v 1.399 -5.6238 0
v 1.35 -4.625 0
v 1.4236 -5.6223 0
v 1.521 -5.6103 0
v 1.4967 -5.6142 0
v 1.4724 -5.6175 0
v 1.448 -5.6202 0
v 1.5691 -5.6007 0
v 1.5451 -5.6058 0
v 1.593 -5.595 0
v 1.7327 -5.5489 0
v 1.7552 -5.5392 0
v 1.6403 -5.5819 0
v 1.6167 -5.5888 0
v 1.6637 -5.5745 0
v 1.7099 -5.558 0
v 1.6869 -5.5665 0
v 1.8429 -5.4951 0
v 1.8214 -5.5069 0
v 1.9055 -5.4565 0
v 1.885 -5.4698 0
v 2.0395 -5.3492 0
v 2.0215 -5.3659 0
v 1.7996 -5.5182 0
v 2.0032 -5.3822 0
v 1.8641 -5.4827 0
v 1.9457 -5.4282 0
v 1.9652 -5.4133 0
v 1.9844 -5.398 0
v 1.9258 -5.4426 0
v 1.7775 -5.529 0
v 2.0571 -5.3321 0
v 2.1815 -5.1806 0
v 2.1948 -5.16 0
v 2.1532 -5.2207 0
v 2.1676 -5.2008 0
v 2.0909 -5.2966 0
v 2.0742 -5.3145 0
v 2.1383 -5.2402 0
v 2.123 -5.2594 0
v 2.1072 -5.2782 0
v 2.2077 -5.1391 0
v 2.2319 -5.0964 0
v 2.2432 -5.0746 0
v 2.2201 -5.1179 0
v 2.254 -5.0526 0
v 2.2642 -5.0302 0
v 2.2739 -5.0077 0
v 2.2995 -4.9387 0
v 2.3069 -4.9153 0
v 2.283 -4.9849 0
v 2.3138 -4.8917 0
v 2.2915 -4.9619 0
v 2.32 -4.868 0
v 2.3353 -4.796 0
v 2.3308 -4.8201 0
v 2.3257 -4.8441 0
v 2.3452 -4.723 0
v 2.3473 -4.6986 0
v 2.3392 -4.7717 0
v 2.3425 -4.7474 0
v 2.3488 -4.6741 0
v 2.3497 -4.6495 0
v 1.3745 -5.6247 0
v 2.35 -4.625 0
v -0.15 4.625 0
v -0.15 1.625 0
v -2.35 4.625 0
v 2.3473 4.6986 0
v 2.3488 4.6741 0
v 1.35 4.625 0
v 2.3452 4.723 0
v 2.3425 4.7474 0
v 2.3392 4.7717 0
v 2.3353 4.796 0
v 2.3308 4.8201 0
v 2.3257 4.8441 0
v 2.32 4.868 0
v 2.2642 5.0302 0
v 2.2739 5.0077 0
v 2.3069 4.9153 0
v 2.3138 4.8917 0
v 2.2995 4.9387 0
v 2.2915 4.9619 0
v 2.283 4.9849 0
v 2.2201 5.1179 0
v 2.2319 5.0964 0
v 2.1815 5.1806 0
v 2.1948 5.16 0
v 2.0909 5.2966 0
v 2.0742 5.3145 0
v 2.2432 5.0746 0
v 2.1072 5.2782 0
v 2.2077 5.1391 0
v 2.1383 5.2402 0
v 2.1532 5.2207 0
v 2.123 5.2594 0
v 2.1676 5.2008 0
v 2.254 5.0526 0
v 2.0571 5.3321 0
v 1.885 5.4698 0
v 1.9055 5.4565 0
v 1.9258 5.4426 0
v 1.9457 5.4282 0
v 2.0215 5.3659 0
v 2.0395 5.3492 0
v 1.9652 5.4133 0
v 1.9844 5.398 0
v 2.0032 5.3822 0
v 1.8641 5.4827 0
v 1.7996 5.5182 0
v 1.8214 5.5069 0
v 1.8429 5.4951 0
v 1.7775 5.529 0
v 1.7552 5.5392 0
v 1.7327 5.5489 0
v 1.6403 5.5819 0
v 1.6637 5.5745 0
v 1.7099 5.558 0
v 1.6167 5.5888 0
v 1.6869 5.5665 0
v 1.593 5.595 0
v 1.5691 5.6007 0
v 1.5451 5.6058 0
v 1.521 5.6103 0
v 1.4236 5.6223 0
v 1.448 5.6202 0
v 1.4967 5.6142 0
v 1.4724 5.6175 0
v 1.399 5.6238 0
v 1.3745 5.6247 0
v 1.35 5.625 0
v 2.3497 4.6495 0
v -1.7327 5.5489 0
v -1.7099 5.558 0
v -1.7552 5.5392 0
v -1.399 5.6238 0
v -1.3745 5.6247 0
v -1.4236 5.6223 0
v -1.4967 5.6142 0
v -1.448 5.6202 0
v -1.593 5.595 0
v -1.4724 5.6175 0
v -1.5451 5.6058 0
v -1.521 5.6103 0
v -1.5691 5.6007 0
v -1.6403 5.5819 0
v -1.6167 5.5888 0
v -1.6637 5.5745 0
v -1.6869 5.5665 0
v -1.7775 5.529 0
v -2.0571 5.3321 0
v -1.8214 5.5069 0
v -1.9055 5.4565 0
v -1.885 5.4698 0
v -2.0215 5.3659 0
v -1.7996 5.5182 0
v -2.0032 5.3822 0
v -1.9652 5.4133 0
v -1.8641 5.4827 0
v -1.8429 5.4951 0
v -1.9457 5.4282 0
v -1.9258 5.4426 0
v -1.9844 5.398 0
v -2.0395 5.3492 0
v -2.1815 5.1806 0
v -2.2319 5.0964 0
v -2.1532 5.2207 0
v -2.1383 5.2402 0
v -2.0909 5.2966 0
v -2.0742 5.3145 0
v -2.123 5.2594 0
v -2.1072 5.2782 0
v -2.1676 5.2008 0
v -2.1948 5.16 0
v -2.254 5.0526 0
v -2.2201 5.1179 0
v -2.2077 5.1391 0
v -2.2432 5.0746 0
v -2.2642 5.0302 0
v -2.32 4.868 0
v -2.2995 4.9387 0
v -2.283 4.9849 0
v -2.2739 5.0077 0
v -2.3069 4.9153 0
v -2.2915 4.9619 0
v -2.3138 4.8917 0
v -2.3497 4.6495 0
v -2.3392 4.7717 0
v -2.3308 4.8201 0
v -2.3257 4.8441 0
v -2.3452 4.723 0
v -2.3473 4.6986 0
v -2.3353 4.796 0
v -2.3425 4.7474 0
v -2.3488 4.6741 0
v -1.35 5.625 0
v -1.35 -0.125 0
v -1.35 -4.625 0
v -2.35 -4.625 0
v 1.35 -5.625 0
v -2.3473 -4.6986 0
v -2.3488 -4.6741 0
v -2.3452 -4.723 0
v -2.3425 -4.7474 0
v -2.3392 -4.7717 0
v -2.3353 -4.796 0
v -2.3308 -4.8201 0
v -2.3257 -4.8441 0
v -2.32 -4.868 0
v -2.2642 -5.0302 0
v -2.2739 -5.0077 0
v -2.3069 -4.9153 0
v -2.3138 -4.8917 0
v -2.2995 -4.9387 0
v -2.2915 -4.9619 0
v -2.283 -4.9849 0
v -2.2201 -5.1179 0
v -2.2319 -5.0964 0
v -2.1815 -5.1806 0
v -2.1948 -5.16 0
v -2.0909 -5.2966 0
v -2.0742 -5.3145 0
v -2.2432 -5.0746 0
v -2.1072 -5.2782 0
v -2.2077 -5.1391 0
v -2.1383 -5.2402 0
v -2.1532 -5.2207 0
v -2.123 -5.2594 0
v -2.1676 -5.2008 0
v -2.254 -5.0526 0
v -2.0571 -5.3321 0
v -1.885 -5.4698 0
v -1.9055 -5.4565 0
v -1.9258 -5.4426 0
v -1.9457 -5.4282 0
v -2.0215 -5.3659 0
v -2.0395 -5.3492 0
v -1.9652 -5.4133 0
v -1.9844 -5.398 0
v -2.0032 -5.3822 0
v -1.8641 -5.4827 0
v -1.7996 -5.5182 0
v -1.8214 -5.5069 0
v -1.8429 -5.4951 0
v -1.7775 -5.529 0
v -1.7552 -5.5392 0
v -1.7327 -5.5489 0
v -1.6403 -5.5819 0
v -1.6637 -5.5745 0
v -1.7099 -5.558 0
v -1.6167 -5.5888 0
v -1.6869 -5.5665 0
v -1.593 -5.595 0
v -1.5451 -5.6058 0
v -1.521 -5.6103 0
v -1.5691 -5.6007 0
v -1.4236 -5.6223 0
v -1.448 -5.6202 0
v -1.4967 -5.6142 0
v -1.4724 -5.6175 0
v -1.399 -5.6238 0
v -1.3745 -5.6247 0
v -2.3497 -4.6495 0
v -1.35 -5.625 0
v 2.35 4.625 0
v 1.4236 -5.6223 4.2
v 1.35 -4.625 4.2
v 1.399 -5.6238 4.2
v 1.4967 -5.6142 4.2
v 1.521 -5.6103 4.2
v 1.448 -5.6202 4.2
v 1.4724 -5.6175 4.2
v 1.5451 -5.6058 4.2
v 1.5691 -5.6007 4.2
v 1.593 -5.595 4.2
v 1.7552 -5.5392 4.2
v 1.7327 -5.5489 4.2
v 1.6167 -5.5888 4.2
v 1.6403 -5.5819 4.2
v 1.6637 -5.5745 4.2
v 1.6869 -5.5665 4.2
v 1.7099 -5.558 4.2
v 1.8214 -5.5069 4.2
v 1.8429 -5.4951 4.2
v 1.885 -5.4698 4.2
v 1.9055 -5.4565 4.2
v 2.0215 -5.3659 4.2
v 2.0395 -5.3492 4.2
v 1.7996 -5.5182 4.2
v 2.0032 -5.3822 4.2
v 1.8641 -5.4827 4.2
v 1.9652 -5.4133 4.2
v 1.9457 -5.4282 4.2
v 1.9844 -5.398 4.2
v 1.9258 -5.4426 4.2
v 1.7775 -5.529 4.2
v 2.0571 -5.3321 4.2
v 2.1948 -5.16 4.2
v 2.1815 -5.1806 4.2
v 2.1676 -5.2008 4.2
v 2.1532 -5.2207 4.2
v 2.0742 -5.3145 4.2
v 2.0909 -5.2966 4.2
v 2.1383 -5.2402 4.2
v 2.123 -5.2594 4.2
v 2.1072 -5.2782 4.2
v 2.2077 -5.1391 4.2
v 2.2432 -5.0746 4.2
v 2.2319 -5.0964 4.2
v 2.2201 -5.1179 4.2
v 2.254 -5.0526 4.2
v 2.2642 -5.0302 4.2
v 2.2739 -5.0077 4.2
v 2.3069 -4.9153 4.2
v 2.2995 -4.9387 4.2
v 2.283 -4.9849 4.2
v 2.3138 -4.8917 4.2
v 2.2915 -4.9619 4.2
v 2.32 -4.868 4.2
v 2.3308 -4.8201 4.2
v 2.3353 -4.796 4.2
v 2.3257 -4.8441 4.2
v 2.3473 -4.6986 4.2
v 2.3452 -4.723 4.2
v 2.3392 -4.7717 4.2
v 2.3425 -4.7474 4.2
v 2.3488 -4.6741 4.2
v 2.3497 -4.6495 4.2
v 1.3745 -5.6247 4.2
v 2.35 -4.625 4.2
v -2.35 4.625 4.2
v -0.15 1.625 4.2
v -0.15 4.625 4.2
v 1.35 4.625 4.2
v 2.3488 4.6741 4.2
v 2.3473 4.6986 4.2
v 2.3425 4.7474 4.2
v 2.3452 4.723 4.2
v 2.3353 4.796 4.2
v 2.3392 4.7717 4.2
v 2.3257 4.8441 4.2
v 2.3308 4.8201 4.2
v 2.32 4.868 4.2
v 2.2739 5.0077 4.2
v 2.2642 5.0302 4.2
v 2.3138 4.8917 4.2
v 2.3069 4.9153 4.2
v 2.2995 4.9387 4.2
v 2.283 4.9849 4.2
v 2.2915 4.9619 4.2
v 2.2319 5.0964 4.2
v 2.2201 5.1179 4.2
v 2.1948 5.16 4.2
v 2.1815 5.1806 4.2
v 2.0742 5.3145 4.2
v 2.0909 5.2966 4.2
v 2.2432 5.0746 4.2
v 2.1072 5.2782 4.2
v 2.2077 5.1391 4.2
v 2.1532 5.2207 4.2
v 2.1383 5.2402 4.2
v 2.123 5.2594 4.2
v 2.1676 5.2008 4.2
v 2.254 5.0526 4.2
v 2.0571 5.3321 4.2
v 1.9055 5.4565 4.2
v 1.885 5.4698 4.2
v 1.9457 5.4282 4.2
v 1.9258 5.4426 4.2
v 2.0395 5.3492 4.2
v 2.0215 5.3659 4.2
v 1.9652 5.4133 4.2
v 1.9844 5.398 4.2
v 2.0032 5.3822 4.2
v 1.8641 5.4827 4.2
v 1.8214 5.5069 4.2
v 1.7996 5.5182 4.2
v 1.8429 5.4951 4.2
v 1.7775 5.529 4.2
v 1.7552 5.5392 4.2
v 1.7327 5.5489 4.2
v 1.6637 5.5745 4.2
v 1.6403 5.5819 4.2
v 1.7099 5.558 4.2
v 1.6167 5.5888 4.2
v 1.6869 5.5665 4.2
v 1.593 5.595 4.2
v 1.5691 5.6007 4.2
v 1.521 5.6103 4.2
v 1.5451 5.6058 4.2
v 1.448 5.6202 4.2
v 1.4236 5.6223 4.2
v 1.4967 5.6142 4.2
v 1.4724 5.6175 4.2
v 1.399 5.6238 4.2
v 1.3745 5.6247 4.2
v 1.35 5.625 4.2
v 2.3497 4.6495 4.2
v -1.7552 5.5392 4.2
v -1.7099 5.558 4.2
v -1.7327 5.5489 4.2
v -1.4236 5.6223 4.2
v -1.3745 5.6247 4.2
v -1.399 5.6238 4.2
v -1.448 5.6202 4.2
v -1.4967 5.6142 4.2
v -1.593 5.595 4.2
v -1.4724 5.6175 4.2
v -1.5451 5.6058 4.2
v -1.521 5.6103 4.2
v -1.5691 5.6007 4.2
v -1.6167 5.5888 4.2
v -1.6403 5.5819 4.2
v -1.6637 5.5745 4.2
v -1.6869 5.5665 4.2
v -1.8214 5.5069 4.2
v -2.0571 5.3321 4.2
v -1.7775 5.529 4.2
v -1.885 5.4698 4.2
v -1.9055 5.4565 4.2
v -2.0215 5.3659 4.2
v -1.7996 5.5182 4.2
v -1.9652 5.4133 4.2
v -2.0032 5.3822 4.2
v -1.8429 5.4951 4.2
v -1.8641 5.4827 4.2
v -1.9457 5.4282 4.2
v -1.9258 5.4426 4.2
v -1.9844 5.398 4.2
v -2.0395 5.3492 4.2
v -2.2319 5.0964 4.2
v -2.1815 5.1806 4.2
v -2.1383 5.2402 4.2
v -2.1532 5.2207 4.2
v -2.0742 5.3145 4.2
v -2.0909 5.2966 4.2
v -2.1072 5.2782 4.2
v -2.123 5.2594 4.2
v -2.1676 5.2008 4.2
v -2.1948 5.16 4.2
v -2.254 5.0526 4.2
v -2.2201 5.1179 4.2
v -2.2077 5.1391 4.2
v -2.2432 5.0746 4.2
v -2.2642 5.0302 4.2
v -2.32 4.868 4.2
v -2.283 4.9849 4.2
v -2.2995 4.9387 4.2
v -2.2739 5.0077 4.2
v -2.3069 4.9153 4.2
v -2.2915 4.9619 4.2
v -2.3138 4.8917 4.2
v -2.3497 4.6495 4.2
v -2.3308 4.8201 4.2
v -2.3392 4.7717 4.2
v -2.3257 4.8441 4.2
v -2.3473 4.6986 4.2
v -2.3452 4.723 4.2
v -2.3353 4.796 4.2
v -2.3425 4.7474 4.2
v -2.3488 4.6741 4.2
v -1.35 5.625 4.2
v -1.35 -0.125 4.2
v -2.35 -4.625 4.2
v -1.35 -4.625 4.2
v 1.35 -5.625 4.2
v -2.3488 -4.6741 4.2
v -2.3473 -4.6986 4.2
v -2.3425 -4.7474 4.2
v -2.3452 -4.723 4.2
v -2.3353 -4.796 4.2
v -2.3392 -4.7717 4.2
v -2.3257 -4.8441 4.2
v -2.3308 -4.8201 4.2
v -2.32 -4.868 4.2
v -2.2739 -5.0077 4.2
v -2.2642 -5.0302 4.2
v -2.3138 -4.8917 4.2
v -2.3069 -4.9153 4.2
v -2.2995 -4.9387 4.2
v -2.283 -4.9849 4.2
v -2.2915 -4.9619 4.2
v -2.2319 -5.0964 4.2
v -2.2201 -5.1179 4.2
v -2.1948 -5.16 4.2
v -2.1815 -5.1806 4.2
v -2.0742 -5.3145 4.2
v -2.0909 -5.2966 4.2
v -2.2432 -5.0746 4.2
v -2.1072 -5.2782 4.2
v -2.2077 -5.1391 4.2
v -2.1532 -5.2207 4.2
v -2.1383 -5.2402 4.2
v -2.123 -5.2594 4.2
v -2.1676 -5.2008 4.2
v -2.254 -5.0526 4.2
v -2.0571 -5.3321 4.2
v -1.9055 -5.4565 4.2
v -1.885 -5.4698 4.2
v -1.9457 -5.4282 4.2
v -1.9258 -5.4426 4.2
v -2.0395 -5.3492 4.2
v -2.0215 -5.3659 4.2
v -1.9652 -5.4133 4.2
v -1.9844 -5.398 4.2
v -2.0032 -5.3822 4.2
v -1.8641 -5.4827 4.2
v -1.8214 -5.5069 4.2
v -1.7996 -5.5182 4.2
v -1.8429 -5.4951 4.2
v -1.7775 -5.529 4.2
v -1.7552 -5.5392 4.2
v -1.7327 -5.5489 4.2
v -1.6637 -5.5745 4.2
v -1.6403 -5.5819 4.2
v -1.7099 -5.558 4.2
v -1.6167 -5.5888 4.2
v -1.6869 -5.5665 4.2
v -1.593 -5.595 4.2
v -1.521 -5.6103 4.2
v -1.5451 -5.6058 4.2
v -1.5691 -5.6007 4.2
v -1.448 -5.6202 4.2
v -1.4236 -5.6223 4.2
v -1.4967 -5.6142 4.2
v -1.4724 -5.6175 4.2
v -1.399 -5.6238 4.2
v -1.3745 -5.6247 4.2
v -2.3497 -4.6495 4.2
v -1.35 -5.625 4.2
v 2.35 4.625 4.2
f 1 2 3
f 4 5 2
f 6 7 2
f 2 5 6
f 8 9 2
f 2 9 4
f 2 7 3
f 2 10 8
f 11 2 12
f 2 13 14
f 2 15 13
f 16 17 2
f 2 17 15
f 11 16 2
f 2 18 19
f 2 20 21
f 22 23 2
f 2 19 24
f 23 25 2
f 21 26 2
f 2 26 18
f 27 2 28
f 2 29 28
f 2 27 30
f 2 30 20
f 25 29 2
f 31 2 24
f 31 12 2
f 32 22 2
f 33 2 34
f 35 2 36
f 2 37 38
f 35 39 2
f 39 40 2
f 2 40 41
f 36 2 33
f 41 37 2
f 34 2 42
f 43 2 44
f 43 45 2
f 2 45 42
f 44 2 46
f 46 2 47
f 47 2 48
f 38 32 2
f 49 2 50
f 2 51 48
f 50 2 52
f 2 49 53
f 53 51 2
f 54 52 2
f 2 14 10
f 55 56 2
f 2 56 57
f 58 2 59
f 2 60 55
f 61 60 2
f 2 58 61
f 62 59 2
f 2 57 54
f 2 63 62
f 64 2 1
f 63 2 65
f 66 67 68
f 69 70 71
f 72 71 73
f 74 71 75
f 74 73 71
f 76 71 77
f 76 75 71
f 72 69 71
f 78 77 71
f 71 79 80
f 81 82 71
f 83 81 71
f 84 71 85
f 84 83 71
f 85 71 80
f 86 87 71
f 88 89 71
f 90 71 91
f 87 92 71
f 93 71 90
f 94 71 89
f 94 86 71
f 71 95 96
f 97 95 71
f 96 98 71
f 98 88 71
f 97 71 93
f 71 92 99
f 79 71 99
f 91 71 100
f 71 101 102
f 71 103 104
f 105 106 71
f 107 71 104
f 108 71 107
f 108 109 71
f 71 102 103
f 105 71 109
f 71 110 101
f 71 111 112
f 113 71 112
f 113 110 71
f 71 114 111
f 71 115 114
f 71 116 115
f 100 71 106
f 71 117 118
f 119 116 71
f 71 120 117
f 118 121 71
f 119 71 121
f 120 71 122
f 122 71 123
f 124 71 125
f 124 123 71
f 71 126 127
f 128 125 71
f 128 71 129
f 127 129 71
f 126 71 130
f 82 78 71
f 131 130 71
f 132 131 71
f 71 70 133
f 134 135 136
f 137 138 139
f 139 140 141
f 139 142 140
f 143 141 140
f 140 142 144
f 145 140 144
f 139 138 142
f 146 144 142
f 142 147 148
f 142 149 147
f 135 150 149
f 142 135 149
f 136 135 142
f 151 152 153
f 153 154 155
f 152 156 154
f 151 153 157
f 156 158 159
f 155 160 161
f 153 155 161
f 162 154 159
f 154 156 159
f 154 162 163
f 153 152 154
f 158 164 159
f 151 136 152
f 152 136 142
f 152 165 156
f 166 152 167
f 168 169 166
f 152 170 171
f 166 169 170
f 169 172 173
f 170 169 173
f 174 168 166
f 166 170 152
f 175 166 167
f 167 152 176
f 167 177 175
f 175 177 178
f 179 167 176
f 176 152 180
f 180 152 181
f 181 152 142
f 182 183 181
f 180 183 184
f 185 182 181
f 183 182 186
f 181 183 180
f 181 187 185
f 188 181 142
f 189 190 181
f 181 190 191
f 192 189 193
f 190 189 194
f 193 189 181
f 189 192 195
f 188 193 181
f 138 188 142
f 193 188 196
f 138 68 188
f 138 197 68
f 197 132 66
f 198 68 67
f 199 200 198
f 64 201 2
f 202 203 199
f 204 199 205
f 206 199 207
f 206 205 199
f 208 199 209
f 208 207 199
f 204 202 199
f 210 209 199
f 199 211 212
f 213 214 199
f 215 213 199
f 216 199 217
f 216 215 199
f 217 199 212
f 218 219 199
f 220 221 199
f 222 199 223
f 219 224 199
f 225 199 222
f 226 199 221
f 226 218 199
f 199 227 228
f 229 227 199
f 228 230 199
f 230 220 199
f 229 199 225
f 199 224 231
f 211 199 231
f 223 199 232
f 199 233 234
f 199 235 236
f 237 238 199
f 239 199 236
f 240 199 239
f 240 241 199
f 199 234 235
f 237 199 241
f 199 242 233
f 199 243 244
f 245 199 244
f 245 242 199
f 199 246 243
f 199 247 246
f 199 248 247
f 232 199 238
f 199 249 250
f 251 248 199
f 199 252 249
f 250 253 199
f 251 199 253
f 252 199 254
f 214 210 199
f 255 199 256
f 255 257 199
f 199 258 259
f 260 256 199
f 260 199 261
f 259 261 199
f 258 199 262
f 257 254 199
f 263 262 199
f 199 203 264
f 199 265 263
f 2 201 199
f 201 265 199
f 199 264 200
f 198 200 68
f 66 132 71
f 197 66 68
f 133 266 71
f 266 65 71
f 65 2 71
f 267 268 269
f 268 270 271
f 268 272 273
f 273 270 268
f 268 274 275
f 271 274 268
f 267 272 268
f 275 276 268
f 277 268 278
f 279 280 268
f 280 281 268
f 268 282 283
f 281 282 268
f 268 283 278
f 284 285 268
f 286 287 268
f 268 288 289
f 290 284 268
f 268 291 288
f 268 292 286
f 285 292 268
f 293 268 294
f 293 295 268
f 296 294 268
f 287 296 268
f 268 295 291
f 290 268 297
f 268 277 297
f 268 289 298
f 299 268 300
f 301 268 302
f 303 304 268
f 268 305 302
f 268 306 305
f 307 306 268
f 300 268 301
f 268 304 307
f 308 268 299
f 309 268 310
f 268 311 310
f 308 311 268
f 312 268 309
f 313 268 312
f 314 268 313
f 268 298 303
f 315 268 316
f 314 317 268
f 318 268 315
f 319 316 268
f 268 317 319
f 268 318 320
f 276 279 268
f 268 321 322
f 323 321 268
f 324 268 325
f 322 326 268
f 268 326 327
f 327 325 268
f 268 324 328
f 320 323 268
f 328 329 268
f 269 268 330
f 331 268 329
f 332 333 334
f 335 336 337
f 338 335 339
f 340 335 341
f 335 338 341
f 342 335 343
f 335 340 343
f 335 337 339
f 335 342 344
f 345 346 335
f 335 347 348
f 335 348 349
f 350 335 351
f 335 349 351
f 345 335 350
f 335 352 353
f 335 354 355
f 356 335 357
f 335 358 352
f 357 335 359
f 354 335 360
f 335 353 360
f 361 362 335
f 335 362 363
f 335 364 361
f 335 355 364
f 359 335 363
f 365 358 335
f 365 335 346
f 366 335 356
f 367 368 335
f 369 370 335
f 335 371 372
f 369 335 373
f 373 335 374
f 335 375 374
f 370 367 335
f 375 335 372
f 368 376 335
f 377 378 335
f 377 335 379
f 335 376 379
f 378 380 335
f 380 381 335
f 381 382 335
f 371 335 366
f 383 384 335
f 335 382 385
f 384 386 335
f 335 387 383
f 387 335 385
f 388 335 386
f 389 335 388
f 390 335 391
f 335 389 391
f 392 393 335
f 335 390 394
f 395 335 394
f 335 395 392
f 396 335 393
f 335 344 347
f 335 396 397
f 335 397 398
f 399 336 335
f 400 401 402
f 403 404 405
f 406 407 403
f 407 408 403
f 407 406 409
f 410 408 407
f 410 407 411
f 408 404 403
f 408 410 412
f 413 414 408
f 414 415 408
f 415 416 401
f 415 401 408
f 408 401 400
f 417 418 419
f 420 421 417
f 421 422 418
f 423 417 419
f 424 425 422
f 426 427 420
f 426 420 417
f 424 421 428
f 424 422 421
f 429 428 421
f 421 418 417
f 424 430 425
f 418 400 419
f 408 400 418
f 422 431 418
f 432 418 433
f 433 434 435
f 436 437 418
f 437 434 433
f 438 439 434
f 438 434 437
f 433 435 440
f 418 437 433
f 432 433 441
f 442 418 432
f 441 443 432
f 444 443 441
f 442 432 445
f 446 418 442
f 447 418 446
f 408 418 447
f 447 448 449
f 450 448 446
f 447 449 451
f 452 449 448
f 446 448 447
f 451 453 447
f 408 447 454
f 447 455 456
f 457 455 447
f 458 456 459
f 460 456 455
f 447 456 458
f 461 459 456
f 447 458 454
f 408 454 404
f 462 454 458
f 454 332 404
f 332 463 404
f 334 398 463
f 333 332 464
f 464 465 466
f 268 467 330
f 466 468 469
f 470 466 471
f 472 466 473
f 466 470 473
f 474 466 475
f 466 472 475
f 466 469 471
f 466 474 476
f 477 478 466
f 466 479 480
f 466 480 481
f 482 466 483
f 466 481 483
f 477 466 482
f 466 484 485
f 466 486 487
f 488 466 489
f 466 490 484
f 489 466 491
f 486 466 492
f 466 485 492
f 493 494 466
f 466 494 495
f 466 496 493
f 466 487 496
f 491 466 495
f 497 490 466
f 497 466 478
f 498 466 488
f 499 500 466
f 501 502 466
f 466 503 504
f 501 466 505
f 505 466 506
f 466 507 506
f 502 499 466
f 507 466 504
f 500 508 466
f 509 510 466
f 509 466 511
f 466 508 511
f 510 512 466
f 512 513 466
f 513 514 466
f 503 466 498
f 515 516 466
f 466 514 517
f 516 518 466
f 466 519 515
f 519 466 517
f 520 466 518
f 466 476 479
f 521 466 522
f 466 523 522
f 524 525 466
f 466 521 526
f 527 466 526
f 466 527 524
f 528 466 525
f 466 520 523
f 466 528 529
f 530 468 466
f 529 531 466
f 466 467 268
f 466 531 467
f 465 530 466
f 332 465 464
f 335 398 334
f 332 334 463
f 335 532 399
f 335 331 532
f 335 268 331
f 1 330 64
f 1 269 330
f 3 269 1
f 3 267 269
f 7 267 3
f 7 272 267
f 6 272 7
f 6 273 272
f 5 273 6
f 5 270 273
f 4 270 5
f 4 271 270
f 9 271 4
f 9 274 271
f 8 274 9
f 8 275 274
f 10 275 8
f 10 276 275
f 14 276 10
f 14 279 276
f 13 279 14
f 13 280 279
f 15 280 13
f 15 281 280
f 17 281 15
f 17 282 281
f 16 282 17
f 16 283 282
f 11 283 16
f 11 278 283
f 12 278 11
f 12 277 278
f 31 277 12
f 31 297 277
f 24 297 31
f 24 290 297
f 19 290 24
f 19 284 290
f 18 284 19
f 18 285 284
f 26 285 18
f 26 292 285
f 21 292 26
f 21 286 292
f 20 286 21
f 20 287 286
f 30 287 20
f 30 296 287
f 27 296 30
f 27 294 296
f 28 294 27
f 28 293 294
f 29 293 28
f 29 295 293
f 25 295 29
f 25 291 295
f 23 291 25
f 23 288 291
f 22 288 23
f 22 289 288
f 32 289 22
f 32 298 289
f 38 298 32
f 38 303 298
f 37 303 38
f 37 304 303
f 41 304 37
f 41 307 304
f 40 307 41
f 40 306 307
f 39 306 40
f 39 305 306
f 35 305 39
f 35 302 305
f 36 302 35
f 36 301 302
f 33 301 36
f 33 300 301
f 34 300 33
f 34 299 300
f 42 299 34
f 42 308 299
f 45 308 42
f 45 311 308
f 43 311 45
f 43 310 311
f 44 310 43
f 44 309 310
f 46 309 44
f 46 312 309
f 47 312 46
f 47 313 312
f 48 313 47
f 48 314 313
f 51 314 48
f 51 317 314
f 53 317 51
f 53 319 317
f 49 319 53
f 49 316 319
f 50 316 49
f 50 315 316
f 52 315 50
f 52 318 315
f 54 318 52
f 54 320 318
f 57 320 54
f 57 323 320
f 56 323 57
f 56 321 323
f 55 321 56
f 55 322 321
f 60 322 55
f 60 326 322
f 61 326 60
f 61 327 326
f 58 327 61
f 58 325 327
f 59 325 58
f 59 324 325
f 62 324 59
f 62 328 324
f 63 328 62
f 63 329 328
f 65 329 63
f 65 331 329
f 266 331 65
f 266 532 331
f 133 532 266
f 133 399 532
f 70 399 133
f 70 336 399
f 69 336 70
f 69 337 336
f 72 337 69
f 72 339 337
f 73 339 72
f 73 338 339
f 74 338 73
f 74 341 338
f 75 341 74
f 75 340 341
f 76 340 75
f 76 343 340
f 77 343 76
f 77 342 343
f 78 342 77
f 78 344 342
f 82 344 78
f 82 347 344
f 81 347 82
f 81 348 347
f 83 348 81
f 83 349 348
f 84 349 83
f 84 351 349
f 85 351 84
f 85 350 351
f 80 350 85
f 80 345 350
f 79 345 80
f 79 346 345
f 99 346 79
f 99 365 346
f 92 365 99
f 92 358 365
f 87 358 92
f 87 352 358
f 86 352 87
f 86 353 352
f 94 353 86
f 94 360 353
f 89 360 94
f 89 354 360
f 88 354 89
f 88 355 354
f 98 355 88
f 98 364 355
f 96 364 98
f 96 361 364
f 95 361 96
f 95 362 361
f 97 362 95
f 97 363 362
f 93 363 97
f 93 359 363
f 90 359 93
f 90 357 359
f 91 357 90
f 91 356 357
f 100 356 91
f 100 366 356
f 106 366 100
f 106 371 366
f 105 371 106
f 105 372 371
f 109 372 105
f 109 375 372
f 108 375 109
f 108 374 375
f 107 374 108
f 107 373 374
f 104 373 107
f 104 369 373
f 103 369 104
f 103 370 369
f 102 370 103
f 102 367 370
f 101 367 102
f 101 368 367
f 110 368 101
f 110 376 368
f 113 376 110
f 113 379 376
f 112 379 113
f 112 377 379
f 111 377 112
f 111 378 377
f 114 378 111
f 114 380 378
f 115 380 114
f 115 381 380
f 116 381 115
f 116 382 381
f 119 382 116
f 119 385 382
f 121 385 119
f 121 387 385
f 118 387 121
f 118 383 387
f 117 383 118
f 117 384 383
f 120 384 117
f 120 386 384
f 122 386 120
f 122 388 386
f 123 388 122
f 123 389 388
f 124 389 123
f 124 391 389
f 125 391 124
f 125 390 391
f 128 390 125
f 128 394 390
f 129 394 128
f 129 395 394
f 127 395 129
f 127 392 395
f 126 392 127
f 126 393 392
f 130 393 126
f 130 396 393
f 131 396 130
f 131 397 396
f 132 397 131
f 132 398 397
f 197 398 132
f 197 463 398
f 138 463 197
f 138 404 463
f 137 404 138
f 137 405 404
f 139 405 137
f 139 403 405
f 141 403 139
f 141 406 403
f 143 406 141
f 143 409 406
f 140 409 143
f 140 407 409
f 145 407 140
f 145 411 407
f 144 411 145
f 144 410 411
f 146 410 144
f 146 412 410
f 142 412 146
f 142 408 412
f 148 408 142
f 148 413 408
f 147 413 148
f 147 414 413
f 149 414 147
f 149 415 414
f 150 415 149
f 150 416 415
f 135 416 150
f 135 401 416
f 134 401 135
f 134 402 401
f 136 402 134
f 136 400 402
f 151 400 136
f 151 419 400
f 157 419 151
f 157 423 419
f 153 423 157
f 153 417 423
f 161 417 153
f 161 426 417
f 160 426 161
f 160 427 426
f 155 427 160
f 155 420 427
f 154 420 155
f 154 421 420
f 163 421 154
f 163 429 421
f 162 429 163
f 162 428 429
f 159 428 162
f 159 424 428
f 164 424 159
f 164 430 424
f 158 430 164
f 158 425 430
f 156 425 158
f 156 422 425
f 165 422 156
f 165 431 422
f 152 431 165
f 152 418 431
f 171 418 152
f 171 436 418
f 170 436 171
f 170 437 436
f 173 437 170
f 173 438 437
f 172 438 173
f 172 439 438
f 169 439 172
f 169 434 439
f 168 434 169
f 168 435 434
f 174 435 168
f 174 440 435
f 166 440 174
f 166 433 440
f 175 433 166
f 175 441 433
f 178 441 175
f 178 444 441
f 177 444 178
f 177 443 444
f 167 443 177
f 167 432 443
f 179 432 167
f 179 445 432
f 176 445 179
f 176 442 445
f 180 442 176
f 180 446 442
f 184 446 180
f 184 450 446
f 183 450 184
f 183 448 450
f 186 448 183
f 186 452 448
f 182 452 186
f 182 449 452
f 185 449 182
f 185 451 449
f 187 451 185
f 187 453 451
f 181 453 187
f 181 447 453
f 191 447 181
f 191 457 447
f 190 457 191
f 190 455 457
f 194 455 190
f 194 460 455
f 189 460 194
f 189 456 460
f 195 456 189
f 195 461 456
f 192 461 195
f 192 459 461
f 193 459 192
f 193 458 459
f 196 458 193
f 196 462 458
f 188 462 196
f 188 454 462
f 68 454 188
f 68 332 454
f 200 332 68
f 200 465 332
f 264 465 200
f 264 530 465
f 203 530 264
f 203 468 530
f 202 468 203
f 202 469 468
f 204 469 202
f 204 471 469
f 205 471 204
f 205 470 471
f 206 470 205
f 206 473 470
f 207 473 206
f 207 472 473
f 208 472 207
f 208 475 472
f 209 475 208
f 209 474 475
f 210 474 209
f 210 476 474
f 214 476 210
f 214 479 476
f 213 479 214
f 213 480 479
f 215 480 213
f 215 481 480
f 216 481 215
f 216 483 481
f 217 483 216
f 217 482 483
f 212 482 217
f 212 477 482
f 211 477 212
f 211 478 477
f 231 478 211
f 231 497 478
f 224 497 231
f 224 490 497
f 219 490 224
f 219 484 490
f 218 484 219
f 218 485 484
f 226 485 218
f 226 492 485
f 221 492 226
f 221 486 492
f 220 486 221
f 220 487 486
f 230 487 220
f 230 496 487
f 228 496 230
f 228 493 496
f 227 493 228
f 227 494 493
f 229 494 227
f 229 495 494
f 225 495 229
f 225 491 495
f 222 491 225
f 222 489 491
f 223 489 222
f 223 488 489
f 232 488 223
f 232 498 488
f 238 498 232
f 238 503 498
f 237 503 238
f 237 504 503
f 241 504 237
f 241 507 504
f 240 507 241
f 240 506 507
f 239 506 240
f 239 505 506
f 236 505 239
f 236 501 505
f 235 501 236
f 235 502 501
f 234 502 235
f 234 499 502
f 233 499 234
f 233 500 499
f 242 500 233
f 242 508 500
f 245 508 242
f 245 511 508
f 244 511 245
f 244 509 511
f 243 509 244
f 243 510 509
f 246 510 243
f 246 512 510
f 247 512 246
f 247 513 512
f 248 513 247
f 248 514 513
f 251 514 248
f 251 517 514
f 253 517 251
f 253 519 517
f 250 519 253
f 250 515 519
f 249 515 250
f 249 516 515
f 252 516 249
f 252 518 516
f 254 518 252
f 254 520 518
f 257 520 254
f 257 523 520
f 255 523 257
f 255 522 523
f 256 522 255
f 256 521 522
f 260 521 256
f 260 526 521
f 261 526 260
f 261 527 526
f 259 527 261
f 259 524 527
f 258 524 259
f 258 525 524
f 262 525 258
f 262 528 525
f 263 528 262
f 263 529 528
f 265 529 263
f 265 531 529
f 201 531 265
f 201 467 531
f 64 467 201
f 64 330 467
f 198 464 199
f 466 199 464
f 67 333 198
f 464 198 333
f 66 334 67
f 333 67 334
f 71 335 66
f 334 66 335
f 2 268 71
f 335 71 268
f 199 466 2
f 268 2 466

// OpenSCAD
/* [Tool Dimensions] */
// Blade height (at the shoulder)
bladeHeight=9.25; // 0.001
// How far down the keyway the angle should start
bladeUpperHeight=3.0; // 0.001
// Thickness of the blade at the top
bladeUpperThickness=1.5; // 0.001
// How far up the keyway the angle should start
bladeLowerHeight=4.5; // 0.001
// Thickness of the blade at the bottom
bladeLowerThickness=2.7; // 0.001
// The pin spacing - this will be the distance the standoff pushes the tool out
pinSpacing=4.20; // 0.001
/* [Printing/Rendering Options]*/
// How much material to use
collarWidth=1.0; // 0.01
// The resolution used to calculate curves - as a power of two
curveResolution=8; // [4:8]

$fn=pow(2,curveResolution);

linear_extrude(pinSpacing) {
	difference() {
		body(bladeHeight, bladeLowerThickness, collarWidth);
		inside(bladeHeight, bladeLowerHeight, bladeLowerThickness, bladeUpperHeight, bladeUpperThickness); 
	}
}

/* Functions */

module corners(x, y, radius) {
	for (i=[0:1]) {
		for (k=[0:1]) {
			mirror([i,0,0]) {
				mirror([0,k,0]) {
					corner(x, y, radius);
				}
			}
		}
	}
}

module corner(x, y, radius) {
	translate([x - radius/2, y - radius/2, 0]) {
		intersection() {
			square([radius, radius]);
			circle(radius);
		}
	}
}

module body(height, width, collarWidth) {
	x = (width + collarWidth) / 2;
	y = (height + collarWidth) / 2;
	
	square([width, height + 2 * collarWidth], center=true);
	square([width + 2 * collarWidth, height], center=true);
	corners(x, y, radius=collarWidth);
}

module inside(bladeHeight, bladeLowerHeight, bladeLowerThickness, bladeUpperHeight, bladeUpperThickness) {
	x = bladeLowerThickness / 2;
	y = bladeHeight / 2;
	polygon(
		[
			[-x,bladeLowerHeight-y],
			[-x,-y],
			[x,-y],
			[x,y],
			[x-bladeUpperThickness,y],
			[x-bladeUpperThickness,y-bladeUpperHeight]
		]
	);
}
